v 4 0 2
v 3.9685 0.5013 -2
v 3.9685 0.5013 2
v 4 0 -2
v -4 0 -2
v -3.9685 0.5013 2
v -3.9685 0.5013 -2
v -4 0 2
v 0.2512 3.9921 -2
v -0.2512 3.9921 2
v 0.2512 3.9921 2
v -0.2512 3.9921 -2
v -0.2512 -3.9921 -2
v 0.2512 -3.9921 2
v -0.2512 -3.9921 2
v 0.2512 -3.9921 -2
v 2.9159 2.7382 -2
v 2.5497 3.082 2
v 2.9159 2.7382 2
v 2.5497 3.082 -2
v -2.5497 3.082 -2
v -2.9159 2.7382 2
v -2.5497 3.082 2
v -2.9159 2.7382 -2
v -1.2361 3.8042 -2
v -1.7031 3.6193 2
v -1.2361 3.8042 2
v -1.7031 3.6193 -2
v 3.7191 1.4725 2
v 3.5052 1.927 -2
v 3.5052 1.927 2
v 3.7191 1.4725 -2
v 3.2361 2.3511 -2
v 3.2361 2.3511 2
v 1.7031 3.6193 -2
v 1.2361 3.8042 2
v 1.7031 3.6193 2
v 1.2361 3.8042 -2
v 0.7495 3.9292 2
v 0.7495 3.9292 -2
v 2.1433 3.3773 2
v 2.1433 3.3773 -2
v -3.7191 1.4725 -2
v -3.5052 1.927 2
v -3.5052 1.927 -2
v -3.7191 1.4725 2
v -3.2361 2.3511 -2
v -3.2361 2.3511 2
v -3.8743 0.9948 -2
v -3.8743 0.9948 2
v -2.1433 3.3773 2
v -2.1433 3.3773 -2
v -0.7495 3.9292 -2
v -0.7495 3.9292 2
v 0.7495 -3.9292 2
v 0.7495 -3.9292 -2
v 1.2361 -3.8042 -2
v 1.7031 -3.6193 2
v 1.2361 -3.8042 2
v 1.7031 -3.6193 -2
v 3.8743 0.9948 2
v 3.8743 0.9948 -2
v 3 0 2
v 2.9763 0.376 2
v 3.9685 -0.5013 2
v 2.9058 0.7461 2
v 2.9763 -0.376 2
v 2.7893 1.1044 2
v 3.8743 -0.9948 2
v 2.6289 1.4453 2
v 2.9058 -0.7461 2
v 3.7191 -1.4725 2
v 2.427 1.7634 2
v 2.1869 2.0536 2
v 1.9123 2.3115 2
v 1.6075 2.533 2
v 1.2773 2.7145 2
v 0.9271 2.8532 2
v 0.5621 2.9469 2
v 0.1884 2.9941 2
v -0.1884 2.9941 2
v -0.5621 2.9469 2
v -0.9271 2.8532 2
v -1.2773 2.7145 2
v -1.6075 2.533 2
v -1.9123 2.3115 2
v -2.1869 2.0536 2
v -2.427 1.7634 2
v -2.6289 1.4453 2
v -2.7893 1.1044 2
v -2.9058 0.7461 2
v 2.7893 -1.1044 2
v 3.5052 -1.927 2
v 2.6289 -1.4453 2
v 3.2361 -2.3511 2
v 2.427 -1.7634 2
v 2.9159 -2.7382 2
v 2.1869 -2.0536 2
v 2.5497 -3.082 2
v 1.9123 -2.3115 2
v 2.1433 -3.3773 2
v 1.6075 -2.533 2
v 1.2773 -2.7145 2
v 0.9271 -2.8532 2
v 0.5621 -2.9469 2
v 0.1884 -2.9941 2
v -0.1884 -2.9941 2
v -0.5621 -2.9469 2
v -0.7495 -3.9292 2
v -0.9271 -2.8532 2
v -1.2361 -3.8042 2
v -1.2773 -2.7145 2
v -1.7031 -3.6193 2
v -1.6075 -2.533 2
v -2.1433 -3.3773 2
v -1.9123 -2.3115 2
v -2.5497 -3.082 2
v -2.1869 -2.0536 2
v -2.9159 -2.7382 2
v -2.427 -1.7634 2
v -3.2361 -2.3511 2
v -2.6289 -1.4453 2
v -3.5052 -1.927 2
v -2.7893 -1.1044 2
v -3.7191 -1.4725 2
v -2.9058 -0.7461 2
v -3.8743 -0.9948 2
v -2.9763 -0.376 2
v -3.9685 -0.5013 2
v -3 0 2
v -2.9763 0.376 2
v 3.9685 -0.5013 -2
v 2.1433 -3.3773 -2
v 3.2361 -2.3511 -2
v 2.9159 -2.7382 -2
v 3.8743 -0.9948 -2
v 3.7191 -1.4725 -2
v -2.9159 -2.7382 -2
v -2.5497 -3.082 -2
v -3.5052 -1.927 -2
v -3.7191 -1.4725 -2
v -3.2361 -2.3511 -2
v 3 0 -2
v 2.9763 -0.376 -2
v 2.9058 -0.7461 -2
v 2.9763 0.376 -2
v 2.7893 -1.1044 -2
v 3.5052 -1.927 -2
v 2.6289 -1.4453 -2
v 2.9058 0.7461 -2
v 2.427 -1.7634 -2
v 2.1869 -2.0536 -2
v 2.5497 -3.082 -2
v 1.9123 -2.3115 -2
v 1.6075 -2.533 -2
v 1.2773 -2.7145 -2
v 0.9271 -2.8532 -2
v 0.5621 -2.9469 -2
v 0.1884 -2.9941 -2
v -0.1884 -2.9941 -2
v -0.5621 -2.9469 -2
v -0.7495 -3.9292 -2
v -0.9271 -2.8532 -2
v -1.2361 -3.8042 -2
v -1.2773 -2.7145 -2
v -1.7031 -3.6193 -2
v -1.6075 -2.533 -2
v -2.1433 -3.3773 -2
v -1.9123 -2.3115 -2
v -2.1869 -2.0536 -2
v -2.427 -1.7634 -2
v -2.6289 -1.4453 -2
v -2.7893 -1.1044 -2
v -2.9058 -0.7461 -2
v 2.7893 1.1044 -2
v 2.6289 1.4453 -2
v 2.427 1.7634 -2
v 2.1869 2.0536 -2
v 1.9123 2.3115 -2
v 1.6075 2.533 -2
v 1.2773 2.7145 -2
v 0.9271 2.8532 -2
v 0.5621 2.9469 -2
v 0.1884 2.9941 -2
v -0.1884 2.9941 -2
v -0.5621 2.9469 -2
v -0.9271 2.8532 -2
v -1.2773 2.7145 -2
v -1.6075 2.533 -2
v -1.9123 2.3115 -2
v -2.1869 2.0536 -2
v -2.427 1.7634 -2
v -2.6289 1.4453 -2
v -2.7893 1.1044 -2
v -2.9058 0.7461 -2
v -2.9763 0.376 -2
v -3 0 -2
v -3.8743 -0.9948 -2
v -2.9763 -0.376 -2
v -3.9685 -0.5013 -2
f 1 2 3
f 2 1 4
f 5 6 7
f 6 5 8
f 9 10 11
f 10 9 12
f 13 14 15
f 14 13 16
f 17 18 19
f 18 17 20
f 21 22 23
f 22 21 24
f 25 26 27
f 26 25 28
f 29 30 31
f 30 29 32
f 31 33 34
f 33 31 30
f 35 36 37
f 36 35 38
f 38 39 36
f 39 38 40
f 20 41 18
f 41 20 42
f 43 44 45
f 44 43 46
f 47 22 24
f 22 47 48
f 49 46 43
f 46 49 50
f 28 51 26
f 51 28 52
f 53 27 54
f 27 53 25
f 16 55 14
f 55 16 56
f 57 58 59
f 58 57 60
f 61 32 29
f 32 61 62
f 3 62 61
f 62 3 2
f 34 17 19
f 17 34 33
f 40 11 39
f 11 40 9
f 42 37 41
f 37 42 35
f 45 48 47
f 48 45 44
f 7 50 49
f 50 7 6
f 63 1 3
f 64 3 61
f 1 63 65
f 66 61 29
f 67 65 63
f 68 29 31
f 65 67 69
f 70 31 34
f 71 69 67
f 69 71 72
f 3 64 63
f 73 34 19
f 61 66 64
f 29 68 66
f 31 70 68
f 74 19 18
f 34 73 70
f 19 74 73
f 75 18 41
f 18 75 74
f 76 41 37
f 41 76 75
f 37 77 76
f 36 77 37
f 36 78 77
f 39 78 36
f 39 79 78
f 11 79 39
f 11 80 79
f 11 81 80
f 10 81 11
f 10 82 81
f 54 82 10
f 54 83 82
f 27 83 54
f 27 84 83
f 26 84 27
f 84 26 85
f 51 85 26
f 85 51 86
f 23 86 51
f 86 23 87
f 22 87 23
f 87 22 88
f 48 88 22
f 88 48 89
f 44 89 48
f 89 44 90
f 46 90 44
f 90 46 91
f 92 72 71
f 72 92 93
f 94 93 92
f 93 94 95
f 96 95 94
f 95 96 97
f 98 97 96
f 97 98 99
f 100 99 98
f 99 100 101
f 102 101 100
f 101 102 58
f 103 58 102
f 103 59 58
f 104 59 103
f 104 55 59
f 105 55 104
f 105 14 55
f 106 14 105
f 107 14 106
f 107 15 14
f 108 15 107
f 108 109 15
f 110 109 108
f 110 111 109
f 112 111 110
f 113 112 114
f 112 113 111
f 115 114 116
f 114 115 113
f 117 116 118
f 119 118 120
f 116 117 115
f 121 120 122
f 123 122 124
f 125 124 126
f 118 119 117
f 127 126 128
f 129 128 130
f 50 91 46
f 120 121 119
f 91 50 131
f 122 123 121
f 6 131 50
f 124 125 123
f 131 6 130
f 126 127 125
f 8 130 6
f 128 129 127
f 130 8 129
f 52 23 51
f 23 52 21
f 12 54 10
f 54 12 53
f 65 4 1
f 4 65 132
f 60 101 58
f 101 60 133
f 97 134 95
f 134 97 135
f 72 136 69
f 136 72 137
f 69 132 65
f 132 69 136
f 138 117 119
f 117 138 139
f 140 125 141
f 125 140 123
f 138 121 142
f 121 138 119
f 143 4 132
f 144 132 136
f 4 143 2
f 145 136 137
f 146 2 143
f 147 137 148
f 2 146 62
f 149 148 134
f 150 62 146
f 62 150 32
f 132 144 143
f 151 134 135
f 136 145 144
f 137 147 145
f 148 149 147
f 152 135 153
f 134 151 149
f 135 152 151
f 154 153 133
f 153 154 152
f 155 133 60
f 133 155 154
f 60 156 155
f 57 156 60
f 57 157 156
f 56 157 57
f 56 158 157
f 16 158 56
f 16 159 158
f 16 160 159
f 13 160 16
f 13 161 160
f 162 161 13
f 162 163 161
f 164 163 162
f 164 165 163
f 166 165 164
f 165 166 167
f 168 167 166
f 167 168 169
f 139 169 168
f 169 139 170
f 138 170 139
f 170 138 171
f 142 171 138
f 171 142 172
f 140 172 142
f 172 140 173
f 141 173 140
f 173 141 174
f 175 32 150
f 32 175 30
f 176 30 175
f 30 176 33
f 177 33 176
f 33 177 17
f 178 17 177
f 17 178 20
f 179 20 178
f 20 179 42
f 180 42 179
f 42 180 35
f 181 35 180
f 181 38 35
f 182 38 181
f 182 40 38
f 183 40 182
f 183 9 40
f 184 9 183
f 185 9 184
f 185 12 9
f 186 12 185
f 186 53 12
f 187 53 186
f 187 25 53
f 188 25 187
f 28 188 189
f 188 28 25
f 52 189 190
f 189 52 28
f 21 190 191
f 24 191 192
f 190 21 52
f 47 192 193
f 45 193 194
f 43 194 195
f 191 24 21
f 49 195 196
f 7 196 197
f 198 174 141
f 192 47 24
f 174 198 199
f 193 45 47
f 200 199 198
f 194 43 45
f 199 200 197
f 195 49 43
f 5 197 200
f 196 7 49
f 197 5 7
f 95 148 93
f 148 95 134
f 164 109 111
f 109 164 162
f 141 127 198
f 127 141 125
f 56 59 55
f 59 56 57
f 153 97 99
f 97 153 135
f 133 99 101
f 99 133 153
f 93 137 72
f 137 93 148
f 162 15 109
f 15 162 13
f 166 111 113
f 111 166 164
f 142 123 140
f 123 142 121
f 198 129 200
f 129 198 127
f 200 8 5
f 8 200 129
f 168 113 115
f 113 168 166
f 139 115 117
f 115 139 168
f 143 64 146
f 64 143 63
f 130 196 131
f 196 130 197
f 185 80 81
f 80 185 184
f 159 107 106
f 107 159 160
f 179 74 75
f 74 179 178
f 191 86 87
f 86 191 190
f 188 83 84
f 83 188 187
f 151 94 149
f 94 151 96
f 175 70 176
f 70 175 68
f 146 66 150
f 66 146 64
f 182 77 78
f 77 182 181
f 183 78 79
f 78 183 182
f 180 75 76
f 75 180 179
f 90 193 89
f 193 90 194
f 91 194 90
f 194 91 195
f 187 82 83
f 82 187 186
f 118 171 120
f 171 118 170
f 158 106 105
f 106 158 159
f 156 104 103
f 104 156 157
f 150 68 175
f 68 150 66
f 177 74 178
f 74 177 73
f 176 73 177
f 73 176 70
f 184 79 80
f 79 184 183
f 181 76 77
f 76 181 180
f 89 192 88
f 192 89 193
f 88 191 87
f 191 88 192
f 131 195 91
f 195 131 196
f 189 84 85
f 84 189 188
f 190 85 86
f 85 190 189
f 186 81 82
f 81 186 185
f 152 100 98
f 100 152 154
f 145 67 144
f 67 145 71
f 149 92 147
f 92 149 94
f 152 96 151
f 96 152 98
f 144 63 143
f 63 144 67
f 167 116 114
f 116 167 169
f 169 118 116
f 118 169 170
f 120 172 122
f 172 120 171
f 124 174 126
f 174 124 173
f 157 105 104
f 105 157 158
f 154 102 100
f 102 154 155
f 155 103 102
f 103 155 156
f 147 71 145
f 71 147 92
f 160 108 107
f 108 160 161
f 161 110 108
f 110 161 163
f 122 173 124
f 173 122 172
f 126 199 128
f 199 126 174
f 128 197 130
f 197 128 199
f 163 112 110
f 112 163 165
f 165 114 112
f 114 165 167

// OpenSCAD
$fn = 50;


difference() {
	union() {
		translate(v = [0, 0, -2.0000000000]) {
			cylinder(h = 4, r = 4.0000000000);
		}
	}
	union() {
		translate(v = [0, 0, -100.0000000000]) {
			cylinder(h = 200, r = 3);
		}
	}
}
